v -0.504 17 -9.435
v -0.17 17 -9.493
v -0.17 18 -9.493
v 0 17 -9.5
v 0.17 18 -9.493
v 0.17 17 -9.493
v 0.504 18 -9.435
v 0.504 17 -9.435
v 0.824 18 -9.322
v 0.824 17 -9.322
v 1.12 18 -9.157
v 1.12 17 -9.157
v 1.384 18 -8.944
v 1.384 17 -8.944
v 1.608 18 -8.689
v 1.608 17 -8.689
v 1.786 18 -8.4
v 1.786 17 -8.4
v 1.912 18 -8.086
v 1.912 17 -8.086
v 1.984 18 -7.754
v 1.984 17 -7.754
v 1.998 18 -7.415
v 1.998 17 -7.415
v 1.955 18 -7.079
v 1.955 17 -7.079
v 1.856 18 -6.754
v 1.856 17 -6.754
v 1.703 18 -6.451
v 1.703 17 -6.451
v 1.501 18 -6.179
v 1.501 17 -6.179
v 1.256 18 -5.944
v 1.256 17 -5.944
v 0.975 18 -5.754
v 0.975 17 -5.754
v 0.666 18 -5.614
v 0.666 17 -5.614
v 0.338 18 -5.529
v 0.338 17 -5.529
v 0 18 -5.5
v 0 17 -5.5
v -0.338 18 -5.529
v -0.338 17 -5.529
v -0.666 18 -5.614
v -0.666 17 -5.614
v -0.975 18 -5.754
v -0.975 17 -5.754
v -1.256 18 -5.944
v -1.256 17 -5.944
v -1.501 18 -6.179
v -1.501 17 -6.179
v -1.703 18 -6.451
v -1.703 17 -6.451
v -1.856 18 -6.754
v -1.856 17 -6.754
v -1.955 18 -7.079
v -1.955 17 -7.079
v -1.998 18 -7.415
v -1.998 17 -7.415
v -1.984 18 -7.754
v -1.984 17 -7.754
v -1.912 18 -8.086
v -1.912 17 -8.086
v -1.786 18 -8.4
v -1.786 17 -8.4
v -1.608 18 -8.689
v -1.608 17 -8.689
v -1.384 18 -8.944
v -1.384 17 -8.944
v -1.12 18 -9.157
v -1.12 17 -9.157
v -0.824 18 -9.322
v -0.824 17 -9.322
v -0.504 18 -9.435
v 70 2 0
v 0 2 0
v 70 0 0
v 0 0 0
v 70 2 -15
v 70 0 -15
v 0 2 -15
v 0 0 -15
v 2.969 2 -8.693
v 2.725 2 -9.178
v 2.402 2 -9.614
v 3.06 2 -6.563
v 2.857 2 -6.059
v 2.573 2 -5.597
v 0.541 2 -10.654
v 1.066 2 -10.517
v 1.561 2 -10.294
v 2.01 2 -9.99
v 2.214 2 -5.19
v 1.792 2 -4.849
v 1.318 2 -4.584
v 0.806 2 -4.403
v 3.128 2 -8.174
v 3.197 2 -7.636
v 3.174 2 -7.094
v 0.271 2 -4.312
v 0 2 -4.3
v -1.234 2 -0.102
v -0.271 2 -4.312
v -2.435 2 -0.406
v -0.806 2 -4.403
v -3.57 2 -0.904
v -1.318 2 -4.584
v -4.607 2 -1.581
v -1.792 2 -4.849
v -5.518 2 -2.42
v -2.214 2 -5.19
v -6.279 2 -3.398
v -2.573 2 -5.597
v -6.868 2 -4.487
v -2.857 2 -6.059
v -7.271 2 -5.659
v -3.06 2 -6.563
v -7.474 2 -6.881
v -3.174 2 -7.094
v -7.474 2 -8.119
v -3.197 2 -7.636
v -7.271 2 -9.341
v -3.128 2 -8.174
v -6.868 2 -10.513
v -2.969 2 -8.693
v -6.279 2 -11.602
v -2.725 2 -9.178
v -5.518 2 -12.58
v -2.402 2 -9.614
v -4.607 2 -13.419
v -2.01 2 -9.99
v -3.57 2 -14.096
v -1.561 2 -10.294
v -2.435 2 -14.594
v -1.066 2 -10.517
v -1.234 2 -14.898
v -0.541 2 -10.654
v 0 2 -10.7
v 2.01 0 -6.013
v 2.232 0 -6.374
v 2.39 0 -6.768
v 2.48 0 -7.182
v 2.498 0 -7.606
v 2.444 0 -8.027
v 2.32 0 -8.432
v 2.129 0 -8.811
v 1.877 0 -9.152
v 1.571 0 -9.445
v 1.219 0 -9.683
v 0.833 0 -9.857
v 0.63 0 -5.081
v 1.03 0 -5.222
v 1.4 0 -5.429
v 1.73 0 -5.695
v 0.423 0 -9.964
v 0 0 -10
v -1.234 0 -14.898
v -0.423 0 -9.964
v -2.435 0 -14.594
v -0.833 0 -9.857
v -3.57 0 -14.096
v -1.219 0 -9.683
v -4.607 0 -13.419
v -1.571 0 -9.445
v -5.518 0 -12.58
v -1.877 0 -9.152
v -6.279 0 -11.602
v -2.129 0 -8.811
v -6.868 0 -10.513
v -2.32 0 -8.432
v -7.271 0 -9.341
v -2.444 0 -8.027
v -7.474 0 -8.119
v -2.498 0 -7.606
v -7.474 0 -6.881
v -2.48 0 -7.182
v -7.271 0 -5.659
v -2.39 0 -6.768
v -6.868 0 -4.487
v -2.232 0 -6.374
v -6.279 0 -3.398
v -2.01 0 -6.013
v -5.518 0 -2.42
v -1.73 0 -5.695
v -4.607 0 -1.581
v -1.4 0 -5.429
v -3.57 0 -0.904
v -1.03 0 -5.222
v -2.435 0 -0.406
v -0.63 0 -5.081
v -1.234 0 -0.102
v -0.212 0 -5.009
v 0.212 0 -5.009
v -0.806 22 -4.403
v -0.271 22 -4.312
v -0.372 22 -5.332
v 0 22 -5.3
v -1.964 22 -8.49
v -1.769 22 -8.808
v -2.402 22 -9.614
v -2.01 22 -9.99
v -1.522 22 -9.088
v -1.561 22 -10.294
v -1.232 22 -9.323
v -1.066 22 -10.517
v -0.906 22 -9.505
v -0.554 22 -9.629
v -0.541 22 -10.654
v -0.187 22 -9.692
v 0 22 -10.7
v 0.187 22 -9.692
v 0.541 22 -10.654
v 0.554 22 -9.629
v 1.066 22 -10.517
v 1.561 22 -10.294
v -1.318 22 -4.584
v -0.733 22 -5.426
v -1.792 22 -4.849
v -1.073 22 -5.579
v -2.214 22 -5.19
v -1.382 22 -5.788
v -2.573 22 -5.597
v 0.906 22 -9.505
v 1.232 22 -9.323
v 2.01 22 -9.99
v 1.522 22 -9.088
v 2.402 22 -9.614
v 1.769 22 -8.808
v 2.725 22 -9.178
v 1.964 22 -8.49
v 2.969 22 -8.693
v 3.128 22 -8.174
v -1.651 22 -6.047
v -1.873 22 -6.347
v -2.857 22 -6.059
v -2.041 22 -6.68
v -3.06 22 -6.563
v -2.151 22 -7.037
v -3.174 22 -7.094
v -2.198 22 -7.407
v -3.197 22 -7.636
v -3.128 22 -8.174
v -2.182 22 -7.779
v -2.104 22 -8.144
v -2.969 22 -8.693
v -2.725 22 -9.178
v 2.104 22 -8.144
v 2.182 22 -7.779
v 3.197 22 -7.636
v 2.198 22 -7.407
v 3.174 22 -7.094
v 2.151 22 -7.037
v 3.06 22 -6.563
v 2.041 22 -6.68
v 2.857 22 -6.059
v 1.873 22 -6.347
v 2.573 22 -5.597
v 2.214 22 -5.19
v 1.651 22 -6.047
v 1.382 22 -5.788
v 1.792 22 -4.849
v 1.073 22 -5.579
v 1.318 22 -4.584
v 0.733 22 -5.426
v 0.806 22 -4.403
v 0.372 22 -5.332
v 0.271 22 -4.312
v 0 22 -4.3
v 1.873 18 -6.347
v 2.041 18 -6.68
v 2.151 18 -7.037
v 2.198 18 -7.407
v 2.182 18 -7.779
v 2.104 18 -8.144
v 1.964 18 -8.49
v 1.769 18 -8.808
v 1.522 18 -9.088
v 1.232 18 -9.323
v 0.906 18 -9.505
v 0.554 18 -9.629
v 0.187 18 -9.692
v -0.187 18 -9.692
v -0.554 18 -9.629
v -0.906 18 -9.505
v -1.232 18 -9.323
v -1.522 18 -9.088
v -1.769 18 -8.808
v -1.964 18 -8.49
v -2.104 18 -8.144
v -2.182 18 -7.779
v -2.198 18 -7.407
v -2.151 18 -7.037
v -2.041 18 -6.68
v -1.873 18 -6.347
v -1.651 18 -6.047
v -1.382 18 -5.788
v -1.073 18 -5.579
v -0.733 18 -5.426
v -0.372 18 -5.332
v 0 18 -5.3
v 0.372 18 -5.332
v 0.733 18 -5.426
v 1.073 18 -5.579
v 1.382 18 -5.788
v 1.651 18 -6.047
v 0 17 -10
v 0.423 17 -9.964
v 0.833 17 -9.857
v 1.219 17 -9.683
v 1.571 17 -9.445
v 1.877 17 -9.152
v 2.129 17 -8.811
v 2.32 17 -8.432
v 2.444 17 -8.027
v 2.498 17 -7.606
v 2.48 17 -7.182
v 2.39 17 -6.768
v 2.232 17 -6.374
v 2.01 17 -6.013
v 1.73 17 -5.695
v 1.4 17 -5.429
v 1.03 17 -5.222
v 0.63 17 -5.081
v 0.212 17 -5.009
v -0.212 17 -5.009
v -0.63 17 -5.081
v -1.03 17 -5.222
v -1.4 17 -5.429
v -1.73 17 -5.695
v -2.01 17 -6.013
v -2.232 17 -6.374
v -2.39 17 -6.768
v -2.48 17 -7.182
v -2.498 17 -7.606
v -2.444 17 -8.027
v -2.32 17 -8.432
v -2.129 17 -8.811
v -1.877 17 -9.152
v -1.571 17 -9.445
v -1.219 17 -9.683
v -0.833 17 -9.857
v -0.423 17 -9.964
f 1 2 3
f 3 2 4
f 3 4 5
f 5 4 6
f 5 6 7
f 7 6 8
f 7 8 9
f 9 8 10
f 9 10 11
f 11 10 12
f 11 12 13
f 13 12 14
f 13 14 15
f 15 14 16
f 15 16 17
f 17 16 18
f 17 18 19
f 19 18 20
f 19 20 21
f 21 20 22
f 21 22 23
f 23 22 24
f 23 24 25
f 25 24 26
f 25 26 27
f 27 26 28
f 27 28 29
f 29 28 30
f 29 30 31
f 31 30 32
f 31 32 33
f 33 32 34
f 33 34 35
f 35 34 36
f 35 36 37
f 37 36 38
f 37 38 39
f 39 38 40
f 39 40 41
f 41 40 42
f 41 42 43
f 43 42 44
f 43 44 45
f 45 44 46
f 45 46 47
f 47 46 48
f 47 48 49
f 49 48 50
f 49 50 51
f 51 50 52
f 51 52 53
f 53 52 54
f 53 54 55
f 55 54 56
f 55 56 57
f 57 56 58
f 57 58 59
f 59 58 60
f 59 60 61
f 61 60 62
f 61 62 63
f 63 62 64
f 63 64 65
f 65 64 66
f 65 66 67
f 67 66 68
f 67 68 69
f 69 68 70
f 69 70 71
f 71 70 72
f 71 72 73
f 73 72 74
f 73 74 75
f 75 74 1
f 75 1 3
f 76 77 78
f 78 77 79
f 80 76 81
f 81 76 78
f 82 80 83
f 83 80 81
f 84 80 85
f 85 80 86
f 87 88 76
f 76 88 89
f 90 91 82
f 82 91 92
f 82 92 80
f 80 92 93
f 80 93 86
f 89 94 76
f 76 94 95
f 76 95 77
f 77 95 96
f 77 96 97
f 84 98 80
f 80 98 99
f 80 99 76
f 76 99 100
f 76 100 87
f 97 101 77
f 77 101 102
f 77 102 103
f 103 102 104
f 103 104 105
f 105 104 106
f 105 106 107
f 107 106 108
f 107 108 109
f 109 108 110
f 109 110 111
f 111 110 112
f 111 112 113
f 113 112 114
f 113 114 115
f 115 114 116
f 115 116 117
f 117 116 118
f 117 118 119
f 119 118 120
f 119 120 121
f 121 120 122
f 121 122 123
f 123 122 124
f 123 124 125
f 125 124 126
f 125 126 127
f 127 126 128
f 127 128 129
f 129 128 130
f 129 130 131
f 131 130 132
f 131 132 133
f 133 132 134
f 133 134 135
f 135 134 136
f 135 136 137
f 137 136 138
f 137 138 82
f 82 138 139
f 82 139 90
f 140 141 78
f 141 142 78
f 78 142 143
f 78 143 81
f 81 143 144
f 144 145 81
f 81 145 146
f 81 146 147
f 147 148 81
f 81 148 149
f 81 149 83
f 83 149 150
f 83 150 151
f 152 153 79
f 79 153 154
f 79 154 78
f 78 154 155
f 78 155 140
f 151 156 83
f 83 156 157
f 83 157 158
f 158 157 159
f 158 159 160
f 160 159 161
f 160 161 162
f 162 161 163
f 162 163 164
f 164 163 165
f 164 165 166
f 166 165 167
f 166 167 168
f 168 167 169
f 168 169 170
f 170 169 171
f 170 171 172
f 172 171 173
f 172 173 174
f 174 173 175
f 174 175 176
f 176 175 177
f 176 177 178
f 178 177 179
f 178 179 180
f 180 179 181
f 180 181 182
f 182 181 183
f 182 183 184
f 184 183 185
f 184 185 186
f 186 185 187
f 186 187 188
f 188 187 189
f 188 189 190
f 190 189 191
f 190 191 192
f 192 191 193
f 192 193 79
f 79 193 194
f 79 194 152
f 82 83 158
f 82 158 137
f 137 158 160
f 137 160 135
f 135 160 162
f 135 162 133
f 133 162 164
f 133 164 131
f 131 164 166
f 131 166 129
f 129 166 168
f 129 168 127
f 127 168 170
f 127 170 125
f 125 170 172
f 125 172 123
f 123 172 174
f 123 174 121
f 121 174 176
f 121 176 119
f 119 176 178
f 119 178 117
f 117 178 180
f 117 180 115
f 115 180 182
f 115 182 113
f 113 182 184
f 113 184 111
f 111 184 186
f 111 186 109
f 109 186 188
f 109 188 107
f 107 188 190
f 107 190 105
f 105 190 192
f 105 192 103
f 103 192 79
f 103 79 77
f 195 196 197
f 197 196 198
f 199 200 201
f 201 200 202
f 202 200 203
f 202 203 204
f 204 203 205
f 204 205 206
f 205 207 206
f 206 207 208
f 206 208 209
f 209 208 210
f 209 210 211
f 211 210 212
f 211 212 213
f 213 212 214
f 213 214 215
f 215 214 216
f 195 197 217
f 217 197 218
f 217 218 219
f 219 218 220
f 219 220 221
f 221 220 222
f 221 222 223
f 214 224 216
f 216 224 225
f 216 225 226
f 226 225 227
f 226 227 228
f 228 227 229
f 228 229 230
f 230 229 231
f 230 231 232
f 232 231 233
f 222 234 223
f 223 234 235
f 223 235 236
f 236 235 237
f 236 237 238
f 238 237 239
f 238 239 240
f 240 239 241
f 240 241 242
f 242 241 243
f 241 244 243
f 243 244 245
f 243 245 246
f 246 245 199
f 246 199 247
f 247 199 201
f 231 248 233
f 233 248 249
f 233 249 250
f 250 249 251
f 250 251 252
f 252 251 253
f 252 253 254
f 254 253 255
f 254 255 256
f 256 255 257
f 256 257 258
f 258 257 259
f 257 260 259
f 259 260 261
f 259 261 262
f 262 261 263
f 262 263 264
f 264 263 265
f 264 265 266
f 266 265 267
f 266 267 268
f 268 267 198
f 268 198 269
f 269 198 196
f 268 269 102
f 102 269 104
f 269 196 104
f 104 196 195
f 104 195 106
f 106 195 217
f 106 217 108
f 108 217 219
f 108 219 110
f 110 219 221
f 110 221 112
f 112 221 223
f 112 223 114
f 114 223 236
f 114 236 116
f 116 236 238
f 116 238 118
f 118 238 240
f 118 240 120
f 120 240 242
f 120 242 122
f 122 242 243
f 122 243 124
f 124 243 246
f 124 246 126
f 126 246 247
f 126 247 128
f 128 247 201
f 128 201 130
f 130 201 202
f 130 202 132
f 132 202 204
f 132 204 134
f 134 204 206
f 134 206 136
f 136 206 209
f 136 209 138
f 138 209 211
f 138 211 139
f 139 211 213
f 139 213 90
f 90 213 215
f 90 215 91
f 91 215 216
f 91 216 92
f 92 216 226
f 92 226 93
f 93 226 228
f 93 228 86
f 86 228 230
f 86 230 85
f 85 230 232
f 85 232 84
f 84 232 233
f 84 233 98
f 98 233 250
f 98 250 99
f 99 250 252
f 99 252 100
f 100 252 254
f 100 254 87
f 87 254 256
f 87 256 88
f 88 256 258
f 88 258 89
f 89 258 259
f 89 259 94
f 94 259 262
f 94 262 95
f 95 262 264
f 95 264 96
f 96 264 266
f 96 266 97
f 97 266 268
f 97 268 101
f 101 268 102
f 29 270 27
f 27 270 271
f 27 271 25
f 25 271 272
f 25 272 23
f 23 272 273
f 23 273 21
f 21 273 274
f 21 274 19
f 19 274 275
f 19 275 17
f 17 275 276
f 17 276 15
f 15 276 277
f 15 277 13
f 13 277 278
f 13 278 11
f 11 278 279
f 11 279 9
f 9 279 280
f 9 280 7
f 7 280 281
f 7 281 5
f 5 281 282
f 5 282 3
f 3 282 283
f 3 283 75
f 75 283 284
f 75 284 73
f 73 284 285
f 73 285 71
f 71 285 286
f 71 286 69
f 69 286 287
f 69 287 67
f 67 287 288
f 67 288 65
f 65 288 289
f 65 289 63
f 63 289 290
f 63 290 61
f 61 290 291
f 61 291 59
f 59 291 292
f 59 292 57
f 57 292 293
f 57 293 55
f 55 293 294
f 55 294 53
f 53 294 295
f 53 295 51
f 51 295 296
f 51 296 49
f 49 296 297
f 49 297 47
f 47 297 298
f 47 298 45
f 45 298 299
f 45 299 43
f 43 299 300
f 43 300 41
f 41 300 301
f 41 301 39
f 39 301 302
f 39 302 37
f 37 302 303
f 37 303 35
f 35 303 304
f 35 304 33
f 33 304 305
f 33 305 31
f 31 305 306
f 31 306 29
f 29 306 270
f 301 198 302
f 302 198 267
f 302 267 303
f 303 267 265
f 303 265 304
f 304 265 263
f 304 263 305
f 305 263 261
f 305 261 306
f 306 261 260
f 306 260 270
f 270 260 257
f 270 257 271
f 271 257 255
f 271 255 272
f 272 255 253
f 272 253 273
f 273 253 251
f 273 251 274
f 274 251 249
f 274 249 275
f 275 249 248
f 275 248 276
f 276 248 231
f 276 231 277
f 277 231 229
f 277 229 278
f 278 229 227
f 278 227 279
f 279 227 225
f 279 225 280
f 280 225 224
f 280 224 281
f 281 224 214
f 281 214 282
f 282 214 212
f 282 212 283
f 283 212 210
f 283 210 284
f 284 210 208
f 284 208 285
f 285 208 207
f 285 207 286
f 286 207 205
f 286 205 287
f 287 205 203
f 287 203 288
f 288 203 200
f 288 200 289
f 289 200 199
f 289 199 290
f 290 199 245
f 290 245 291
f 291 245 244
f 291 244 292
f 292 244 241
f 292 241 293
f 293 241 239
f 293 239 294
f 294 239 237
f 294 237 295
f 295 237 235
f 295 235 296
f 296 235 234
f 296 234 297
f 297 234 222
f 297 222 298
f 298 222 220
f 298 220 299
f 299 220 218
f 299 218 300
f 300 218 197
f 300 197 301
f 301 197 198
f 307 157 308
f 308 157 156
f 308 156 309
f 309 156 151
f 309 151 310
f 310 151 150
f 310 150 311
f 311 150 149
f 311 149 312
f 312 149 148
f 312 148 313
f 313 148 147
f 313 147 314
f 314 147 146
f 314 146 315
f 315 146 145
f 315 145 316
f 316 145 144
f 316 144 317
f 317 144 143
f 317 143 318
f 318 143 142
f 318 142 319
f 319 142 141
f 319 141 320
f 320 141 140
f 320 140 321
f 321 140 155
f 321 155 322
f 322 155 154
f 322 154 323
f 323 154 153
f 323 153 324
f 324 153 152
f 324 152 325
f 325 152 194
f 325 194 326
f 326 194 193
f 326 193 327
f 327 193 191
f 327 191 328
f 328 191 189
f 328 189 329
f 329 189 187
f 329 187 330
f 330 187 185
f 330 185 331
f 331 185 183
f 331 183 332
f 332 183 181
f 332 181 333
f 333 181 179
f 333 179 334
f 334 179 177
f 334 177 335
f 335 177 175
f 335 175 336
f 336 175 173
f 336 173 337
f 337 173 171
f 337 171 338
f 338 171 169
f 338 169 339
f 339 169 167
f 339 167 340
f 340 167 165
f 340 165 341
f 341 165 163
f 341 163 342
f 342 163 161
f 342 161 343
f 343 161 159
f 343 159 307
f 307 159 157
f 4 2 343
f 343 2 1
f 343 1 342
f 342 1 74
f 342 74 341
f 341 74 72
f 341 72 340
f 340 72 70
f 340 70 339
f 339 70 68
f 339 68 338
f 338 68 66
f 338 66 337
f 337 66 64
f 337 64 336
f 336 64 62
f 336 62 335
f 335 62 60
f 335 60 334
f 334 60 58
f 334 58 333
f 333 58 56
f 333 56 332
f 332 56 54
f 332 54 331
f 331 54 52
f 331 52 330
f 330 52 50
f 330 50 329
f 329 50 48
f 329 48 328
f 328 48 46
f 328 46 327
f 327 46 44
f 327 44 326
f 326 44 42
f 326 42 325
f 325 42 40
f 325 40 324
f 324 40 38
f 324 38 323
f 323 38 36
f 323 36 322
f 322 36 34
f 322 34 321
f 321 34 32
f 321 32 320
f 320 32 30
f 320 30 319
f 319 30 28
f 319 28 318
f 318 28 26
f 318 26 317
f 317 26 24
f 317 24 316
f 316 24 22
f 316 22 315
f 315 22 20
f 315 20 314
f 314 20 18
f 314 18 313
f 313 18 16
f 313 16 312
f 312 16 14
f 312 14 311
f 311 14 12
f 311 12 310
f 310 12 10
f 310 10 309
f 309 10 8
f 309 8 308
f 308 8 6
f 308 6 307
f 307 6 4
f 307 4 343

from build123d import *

# Parameters (mm, degrees)
SKETCH1_W           = 70
SKETCH1_H           = 15
BOSS_EXTRUDE1_DEPTH = 2
BOSS_EXTRUDE2_START = -2
SKETCH2_R           = 7.5
BOSS_EXTRUDE2_DEPTH = 2
SKETCH3_R           = 3.2
SKETCH3_R_2         = 2.4
BOSS_EXTRUDE5_DEPTH = 20
SKETCH10_R          = 2.4
CUT_EXTRUDE1_DEPTH  = 16
SKETCH11_R          = 3.2
SKETCH11_R_2        = 2.199750497
BOSS_EXTRUDE6_DEPTH = 22
SKETCH12_R          = 2.2
SKETCH12_R_2        = 2
BOSS_EXTRUDE8_DEPTH = 22
SKETCH13_R          = 2.2
CUT_EXTRUDE2_DEPTH  = 4
SKETCH14_R          = 2.5
SKETCH14_R_2        = 2
CUT_EXTRUDE4_DEPTH  = 17


with BuildPart() as part:
    # Sketch1 → Boss-Extrude1 (new body)
    with BuildSketch(Plane(origin=(0, 0, 0), x_dir=(1, 0, 0), z_dir=(0, 1, 0))):
        with Locations((35, 7.5)):
            Rectangle(SKETCH1_W, SKETCH1_H)
    extrude(amount=BOSS_EXTRUDE1_DEPTH)

    # Sketch2 → Boss-Extrude2 (add)
    with BuildSketch(Plane(origin=(0, 2, 0), x_dir=(1, 0, 0), z_dir=(0, 1, 0)).offset(BOSS_EXTRUDE2_START)):
        with Locations((0, 7.5)):
            Circle(SKETCH2_R)
    extrude(amount=BOSS_EXTRUDE2_DEPTH)

    # Sketch3 → Boss-Extrude5 (add)
    with BuildSketch(Plane(origin=(0, 2, 0), x_dir=(1, 0, 0), z_dir=(0, 1, 0))):
        with Locations((0, 7.5)):
            Circle(SKETCH3_R)
        with Locations((0, 7.5)):
            Circle(SKETCH3_R_2, mode=Mode.SUBTRACT)
    extrude(amount=BOSS_EXTRUDE5_DEPTH)

    # Sketch10 → Cut-Extrude1 (cut)
    with BuildSketch(Plane(origin=(0, 2, 0), x_dir=(1, 0, 0), z_dir=(0, 1, 0))):
        with Locations((0, 7.5)):
            Circle(SKETCH10_R)
    extrude(amount=-CUT_EXTRUDE1_DEPTH, mode=Mode.SUBTRACT)

    # Sketch11 → Boss-Extrude6 (add)
    with BuildSketch(Plane(origin=(0, 22, 0), x_dir=(1, 0, 0), z_dir=(0, 1, 0))):
        with Locations((0, 7.5)):
            Circle(SKETCH11_R)
        with Locations((0, 7.5)):
            Circle(SKETCH11_R_2, mode=Mode.SUBTRACT)
    extrude(amount=-BOSS_EXTRUDE6_DEPTH)

    # Sketch12 → Boss-Extrude8 (add)
    with BuildSketch(Plane(origin=(0, 22, 0), x_dir=(1, 0, 0), z_dir=(0, 1, 0))):
        with Locations((0, 7.5)):
            Circle(SKETCH12_R)
        with Locations((0, 7.5)):
            Circle(SKETCH12_R_2, mode=Mode.SUBTRACT)
    extrude(amount=-BOSS_EXTRUDE8_DEPTH)

    # Sketch13 → Cut-Extrude2 (cut)
    with BuildSketch(Plane(origin=(0, 22, 0), x_dir=(1, 0, 0), z_dir=(0, 1, 0))):
        with Locations((0, 7.5)):
            Circle(SKETCH13_R)
    extrude(amount=-CUT_EXTRUDE2_DEPTH, mode=Mode.SUBTRACT)

    # Sketch14 → Cut-Extrude4 (cut)
    with BuildSketch(Plane.XZ):
        with Locations((0, -7.5)):
            Circle(SKETCH14_R)
        with Locations((0, -7.5)):
            Circle(SKETCH14_R_2, mode=Mode.SUBTRACT)
    extrude(amount=-CUT_EXTRUDE4_DEPTH, mode=Mode.SUBTRACT)


solid = part.part
